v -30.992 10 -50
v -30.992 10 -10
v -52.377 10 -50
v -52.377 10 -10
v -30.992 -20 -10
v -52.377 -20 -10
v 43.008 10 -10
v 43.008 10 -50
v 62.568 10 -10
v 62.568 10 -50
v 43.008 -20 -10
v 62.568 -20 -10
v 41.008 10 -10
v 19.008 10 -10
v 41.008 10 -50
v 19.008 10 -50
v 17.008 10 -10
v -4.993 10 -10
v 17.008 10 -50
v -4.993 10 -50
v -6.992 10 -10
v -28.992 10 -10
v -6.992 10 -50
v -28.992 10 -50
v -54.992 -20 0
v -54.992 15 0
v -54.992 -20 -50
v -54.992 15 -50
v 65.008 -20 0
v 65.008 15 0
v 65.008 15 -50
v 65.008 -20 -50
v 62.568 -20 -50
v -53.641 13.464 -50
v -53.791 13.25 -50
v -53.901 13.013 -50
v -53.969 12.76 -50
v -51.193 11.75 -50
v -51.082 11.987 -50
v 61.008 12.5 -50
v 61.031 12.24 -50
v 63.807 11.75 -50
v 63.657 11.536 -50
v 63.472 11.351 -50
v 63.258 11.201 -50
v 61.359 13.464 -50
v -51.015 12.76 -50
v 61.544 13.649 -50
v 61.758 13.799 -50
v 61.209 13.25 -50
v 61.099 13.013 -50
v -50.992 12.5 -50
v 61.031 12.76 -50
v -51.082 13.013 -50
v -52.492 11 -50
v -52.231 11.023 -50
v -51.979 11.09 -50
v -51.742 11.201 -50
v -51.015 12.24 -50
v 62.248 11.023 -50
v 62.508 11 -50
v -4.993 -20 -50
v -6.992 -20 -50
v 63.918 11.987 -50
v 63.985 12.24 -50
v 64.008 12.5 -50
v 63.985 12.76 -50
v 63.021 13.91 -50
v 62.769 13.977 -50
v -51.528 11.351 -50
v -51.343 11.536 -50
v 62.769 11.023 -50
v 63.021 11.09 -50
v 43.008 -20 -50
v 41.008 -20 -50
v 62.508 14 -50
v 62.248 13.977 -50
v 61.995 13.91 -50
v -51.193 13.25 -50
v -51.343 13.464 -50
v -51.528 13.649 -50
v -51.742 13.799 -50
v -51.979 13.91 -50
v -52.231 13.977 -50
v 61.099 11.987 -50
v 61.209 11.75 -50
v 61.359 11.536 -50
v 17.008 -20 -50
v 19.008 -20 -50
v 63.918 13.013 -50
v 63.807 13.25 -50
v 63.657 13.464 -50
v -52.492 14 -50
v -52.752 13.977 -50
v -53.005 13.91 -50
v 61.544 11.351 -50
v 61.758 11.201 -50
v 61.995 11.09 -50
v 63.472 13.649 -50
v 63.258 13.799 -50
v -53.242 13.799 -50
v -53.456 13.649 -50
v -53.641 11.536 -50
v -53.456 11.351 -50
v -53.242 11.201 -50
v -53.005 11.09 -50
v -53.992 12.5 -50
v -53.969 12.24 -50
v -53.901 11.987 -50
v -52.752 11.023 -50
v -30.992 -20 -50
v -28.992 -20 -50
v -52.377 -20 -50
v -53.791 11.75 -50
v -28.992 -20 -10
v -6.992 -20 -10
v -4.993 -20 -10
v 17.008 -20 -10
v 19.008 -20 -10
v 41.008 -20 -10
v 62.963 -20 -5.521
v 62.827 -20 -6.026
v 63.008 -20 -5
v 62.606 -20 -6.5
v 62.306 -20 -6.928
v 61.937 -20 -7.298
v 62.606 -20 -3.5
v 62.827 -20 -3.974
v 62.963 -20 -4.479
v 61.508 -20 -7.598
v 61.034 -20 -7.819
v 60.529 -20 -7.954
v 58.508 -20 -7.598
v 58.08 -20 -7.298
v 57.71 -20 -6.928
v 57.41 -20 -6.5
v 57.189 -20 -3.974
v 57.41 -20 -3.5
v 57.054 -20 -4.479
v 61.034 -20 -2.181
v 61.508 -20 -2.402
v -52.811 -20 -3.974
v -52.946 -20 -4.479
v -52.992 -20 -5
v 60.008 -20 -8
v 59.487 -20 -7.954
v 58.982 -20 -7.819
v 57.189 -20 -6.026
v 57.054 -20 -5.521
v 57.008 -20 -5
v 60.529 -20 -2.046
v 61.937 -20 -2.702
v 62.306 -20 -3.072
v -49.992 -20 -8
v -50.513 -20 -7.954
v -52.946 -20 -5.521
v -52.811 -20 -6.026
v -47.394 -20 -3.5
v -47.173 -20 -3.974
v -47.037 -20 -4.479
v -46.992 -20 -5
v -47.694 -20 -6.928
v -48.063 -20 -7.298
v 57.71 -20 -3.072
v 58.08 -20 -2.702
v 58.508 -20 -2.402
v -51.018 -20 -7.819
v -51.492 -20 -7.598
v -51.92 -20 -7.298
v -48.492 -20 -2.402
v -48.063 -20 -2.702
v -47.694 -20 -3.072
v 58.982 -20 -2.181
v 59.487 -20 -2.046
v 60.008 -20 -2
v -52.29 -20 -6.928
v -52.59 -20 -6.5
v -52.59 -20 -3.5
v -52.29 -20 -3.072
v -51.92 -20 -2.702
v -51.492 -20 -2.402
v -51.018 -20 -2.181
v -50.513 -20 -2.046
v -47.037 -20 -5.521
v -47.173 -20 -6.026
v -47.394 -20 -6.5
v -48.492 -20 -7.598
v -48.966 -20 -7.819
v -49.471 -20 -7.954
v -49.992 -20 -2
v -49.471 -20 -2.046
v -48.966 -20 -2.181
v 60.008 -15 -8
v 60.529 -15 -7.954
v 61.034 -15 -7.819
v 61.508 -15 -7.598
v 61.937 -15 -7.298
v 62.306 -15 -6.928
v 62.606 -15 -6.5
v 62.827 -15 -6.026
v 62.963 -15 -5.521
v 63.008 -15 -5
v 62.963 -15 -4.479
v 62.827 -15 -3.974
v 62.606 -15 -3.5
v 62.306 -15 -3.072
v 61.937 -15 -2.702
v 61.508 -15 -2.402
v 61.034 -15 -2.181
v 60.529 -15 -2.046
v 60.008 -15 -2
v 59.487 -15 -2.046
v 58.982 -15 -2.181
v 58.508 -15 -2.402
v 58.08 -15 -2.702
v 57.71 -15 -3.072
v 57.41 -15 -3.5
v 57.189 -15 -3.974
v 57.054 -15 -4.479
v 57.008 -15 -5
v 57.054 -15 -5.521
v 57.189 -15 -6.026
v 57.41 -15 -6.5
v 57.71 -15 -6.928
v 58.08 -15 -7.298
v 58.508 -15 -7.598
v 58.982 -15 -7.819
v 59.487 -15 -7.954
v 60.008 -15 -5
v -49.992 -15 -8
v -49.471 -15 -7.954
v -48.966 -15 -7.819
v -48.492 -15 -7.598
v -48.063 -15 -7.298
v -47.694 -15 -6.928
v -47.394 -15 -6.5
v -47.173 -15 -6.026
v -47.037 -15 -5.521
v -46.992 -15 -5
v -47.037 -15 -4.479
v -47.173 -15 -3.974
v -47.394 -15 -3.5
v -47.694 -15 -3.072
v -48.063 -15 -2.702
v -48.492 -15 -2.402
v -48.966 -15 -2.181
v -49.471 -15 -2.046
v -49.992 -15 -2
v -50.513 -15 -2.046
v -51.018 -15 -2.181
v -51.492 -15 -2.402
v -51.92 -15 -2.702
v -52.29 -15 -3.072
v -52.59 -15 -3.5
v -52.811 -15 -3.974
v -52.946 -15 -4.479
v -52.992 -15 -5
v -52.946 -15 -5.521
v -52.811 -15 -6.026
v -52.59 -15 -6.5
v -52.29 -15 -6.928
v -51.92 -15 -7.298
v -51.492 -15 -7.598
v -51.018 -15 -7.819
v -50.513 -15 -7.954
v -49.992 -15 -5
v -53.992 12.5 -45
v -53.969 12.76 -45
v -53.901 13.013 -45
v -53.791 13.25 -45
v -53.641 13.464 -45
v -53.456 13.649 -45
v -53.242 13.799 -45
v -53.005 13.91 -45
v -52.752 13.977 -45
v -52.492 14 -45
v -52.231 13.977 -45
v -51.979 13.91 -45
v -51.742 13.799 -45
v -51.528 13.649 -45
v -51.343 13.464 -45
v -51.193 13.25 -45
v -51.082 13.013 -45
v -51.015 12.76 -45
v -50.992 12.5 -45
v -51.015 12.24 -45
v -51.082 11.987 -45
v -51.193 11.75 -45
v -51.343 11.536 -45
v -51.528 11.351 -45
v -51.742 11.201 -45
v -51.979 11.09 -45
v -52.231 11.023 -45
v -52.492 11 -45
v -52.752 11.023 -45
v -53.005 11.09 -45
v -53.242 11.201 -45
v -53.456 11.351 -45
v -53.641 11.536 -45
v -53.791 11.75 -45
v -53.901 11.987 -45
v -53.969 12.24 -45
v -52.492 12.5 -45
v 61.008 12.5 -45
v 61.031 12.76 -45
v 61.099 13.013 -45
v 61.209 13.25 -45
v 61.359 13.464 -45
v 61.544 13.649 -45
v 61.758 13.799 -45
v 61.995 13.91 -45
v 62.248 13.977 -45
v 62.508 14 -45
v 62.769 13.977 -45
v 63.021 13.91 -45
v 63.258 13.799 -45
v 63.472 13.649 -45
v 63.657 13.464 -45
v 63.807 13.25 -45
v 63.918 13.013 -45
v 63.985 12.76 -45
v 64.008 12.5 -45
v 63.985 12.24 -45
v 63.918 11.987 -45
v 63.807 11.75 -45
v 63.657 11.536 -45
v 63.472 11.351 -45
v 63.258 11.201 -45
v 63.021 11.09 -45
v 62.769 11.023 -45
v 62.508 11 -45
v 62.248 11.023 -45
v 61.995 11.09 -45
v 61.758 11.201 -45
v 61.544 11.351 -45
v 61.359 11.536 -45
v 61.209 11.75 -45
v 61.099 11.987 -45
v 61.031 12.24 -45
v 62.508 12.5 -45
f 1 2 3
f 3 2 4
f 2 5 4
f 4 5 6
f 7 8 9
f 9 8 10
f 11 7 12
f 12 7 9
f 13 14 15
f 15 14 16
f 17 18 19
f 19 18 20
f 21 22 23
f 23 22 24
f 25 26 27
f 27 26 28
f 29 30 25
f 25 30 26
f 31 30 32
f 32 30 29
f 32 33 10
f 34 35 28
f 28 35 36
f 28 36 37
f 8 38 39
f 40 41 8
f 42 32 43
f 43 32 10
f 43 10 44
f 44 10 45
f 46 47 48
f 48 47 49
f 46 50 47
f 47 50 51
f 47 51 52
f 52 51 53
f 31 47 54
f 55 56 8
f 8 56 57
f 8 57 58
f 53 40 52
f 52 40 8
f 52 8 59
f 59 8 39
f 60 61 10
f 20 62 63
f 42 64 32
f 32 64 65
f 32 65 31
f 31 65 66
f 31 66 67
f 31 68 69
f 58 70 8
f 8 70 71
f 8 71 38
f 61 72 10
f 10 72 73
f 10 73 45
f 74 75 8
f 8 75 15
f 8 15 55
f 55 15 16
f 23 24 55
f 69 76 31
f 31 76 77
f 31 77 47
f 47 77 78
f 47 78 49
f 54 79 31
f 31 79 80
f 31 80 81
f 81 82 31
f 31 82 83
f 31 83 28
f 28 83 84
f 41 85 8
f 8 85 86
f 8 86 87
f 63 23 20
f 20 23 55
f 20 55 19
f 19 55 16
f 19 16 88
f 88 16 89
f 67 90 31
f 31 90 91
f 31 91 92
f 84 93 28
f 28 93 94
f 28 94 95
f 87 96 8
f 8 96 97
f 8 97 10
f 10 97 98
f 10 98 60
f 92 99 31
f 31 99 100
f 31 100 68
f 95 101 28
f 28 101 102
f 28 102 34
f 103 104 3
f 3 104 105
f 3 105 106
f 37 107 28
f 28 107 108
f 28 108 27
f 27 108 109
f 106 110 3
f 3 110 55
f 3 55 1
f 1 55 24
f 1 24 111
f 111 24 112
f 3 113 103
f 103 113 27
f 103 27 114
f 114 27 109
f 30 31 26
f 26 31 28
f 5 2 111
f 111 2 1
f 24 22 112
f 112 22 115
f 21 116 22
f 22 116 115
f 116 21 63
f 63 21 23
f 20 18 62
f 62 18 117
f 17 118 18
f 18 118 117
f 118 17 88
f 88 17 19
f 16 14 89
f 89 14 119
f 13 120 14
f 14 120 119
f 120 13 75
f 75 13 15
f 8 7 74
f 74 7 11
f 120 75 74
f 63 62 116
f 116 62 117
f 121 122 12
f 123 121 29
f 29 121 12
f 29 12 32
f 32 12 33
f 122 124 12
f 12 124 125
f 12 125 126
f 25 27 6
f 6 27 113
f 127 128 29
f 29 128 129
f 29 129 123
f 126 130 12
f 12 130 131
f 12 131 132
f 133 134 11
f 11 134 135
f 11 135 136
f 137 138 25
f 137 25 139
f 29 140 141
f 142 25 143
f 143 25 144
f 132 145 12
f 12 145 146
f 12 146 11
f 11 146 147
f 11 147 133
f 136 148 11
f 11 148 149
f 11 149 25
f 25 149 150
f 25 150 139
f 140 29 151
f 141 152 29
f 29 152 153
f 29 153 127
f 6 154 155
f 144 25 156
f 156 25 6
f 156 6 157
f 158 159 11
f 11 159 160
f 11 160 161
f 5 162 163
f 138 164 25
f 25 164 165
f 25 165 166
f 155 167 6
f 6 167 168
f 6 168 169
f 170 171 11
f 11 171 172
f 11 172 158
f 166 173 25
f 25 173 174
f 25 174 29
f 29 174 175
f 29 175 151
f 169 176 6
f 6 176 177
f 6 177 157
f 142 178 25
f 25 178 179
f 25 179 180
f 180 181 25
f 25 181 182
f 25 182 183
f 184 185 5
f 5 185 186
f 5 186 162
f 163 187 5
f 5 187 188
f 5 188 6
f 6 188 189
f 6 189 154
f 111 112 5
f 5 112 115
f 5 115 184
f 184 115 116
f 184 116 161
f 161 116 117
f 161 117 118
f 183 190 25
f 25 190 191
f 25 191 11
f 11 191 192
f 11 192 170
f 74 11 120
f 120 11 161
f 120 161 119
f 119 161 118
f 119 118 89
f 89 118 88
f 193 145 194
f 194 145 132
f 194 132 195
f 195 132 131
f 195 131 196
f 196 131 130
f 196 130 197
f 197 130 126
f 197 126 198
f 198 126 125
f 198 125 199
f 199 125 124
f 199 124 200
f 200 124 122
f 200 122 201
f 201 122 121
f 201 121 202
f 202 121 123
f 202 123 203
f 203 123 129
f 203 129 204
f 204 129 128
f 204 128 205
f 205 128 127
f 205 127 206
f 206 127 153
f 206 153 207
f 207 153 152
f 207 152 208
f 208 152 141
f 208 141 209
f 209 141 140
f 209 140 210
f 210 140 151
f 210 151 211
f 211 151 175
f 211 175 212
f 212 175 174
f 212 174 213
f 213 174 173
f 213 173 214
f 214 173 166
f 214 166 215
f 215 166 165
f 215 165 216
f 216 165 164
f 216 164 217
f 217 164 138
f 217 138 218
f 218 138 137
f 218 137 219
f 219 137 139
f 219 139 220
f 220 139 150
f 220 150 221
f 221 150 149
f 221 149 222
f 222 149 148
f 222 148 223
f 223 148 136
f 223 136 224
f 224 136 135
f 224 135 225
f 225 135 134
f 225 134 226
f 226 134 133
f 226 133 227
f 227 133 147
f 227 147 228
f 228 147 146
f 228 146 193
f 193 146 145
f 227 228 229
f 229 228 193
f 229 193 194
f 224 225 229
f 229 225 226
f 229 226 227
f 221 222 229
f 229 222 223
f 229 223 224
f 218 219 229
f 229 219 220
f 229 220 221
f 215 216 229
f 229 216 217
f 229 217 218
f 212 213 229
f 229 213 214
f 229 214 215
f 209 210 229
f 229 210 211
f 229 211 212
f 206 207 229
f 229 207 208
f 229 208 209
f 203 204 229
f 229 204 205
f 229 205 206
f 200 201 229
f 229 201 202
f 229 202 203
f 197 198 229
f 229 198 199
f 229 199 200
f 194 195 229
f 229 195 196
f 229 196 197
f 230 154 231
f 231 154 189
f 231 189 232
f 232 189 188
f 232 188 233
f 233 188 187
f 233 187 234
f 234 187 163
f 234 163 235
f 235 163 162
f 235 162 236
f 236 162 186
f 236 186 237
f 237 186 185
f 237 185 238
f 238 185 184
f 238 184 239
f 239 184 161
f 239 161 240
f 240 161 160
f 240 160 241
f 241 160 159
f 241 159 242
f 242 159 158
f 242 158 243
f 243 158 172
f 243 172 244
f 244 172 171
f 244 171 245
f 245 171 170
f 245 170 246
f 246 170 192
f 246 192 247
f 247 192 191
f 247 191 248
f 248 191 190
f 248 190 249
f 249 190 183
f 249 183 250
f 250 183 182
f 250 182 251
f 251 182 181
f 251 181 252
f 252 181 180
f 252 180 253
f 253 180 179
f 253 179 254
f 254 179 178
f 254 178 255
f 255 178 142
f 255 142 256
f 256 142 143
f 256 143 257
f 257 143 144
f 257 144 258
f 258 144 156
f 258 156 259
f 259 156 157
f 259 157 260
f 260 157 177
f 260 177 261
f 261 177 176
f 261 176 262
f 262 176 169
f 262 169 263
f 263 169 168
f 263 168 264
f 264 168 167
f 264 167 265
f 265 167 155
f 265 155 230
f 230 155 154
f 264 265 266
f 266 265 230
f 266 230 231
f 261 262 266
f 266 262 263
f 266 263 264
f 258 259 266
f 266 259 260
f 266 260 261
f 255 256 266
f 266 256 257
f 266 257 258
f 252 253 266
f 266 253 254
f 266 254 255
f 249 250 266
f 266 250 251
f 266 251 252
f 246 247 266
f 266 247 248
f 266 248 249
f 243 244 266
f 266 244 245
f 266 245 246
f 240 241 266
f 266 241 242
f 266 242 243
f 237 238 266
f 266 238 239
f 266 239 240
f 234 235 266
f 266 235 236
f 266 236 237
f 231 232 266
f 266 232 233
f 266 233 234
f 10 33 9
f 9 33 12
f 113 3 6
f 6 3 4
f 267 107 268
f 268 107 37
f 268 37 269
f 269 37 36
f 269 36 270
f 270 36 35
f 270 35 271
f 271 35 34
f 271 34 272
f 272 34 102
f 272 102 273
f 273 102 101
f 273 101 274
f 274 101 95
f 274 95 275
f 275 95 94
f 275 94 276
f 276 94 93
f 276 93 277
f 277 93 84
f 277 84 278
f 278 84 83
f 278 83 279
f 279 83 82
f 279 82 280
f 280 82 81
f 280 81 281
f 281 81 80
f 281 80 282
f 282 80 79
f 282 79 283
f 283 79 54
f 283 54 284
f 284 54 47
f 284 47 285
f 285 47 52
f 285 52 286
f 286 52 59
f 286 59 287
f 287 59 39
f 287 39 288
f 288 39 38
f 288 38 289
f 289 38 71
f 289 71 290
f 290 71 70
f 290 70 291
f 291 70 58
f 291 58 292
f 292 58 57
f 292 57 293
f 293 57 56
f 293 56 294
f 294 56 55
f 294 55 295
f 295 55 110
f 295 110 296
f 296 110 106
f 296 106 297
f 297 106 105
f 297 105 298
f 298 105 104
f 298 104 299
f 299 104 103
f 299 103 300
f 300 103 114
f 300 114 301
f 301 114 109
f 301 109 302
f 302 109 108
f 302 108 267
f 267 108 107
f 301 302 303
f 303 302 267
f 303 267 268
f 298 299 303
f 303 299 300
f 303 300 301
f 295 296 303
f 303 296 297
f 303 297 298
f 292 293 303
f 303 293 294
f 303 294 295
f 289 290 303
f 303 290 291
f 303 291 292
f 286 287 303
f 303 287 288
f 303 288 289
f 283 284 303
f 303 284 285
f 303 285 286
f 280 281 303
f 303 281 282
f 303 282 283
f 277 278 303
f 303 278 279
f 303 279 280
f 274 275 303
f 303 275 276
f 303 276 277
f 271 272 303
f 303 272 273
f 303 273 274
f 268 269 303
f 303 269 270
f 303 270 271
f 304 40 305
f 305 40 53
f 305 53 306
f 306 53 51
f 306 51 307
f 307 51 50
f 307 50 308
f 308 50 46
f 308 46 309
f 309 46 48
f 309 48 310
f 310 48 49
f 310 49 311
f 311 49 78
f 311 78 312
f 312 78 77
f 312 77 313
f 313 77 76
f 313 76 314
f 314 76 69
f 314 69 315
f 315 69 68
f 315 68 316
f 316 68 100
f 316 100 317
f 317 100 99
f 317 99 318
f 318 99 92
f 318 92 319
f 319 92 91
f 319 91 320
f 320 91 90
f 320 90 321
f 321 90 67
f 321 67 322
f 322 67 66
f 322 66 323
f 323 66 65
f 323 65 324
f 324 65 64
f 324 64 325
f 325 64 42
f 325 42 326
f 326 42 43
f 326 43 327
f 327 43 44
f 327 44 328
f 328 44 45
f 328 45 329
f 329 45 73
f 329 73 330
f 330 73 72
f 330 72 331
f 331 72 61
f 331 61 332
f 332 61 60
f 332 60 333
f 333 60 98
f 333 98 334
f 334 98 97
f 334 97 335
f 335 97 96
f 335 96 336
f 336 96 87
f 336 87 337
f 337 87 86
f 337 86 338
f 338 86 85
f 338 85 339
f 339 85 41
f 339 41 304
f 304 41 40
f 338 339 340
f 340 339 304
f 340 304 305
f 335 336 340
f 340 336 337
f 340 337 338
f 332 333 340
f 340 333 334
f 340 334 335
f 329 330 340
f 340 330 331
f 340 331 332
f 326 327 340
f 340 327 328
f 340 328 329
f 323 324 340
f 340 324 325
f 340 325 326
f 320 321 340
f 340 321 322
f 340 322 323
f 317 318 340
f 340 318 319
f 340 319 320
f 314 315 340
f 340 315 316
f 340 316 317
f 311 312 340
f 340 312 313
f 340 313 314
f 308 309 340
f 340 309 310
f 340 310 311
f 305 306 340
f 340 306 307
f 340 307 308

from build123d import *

# Parameters (mm, degrees)
SKETCH1_W           = 120
SKETCH1_H           = 50
BOSS_EXTRUDE1_DEPTH = 15
SKETCH2_W           = 24
SKETCH2_H           = 10
SKETCH2_W_2         = 2
SKETCH2_H_2         = 15
SKETCH2_W_3         = 1.99832088
BOSS_EXTRUDE2_DEPTH = 20
CUT_EXTRUDE1_DEPTH  = 10
SKETCH4_W           = 2
SKETCH4_H           = 30
SKETCH4_W_2         = 1.99832088
BOSS_EXTRUDE4_DEPTH = 40
SKETCH5_W           = 74
SKETCH5_H           = 15
CUT_EXTRUDE2_DEPTH  = 30
SKETCH6_R           = 3
CUT_EXTRUDE3_DEPTH  = 5
SKETCH7_W           = 2.440051729
SKETCH7_H           = 30
BOSS_EXTRUDE5_DEPTH = 40
SKETCH8_W           = 2.614904652
SKETCH8_H           = 30
BOSS_EXTRUDE6_DEPTH = 40
SKETCH9_R           = 1.5
CUT_EXTRUDE4_DEPTH  = 5


with BuildPart() as part:
    # Sketch1 → Boss-Extrude1 (new body)
    with BuildSketch(Plane(origin=(0, 0, 0), x_dir=(1, 0, 0), z_dir=(0, 1, 0))):
        with Locations((5.008183306, 25)):
            Rectangle(SKETCH1_W, SKETCH1_H)
    extrude(amount=BOSS_EXTRUDE1_DEPTH)

    # Sketch2 → Boss-Extrude2 (add)
    with BuildSketch(Plane.XZ):
        Polygon((-30.991816694, 0), (-30.991816694, -10), (-28.991816694, -10), (-6.991816694, -10), (-6.991816694, 0), align=None)
        with Locations((-42.991816694, -5)):
            Rectangle(SKETCH2_W, SKETCH2_H)
        with Locations((-29.991816694, -17.5)):
            Rectangle(SKETCH2_W_2, SKETCH2_H_2)
        with Locations((-5.992656254, -17.5)):
            Rectangle(SKETCH2_W_3, SKETCH2_H_2)
        Polygon((-6.991816694, 0), (-6.991816694, -10), (-4.993495814, -10), (17.008183306, -10), (17.008183306, 0), align=None)
        Polygon((41.008183306, 0), (17.008183306, 0), (17.008183306, -10), (19.008183306, -10), (41.008183306, -10), align=None)
        with Locations((18.008183306, -17.5)):
            Rectangle(SKETCH2_W_2, SKETCH2_H_2)
        Polygon((65.008183306, 0), (41.008183306, 0), (41.008183306, -10), (43.008183306, -10), (65.008183306, -10), align=None)
        with Locations((42.008183306, -17.5)):
            Rectangle(SKETCH2_W_2, SKETCH2_H_2)
    extrude(amount=BOSS_EXTRUDE2_DEPTH)

    # Sketch3 → Cut-Extrude1 (cut)
    with BuildSketch(Plane.XZ):
        Polygon((-54.991816694, -10), (-30.991816694, -10), (-30.991816694, -25), (-28.991816694, -25), (-28.991816694, -10), (-6.991816694, -10), (-6.991816694, -25), (-4.993495814, -25), (-4.993495814, -10), (17.008183306, -10), (17.008183306, -25), (19.008183306, -25), (19.008183306, -10), (41.008183306, -10), (41.008183306, -25), (43.008183306, -25), (43.008183306, -10), (65.008183306, -10), (65.008183306, -50), (-54.991816694, -50), align=None)
    extrude(amount=-CUT_EXTRUDE1_DEPTH, mode=Mode.SUBTRACT)

    # Sketch4 → Boss-Extrude4 (add)
    with BuildSketch(Plane(origin=(0, 0, -25), x_dir=(-1, 0, 0), z_dir=(0, 0, -1))):
        with Locations((29.991816694, -5)):
            Rectangle(SKETCH4_W, SKETCH4_H)
        with Locations((5.992656254, -5)):
            Rectangle(SKETCH4_W_2, SKETCH4_H)
        with Locations((-18.008183306, -5)):
            Rectangle(SKETCH4_W, SKETCH4_H)
        with Locations((-42.008183306, -5)):
            Rectangle(SKETCH4_W, SKETCH4_H)
    extrude(amount=BOSS_EXTRUDE4_DEPTH)

    # Sketch5 → Cut-Extrude2 (cut)
    with BuildSketch(Plane(origin=(0, 10, 0), x_dir=(1, 0, 0), z_dir=(0, 1, 0))):
        with Locations((6.008183306, 57.5)):
            Rectangle(SKETCH5_W, SKETCH5_H)
    extrude(amount=-CUT_EXTRUDE2_DEPTH, mode=Mode.SUBTRACT)

    # Sketch6 → Cut-Extrude3 (cut)
    with BuildSketch(Plane.XZ.offset(20)):
        with Locations(Location((-49.991816694, -5, 0), (0, 0, 270))):
            Circle(SKETCH6_R)
        with Locations(Location((60.008183306, -5, 0), (0, 0, 270))):
            Circle(SKETCH6_R)
    extrude(amount=-CUT_EXTRUDE3_DEPTH, mode=Mode.SUBTRACT)

    # Sketch7 → Boss-Extrude5 (add)
    with BuildSketch(Plane(origin=(0, 0, -10), x_dir=(-1, 0, 0), z_dir=(0, 0, -1))):
        with Locations((-63.788157442, -5)):
            Rectangle(SKETCH7_W, SKETCH7_H)
    extrude(amount=BOSS_EXTRUDE5_DEPTH)

    # Sketch8 → Boss-Extrude6 (add)
    with BuildSketch(Plane(origin=(0, 0, -10), x_dir=(-1, 0, 0), z_dir=(0, 0, -1))):
        with Locations((53.684364368, -5)):
            Rectangle(SKETCH8_W, SKETCH8_H)
    extrude(amount=BOSS_EXTRUDE6_DEPTH)

    # Sketch9 → Cut-Extrude4 (cut)
    with BuildSketch(Plane(origin=(0, 0, -50), x_dir=(-1, 0, 0), z_dir=(0, 0, -1))):
        with Locations((-62.508183306, 12.5)):
            Circle(SKETCH9_R)
        with Locations((52.491816694, 12.5)):
            Circle(SKETCH9_R)
    extrude(amount=-CUT_EXTRUDE4_DEPTH, mode=Mode.SUBTRACT)


solid = part.part
